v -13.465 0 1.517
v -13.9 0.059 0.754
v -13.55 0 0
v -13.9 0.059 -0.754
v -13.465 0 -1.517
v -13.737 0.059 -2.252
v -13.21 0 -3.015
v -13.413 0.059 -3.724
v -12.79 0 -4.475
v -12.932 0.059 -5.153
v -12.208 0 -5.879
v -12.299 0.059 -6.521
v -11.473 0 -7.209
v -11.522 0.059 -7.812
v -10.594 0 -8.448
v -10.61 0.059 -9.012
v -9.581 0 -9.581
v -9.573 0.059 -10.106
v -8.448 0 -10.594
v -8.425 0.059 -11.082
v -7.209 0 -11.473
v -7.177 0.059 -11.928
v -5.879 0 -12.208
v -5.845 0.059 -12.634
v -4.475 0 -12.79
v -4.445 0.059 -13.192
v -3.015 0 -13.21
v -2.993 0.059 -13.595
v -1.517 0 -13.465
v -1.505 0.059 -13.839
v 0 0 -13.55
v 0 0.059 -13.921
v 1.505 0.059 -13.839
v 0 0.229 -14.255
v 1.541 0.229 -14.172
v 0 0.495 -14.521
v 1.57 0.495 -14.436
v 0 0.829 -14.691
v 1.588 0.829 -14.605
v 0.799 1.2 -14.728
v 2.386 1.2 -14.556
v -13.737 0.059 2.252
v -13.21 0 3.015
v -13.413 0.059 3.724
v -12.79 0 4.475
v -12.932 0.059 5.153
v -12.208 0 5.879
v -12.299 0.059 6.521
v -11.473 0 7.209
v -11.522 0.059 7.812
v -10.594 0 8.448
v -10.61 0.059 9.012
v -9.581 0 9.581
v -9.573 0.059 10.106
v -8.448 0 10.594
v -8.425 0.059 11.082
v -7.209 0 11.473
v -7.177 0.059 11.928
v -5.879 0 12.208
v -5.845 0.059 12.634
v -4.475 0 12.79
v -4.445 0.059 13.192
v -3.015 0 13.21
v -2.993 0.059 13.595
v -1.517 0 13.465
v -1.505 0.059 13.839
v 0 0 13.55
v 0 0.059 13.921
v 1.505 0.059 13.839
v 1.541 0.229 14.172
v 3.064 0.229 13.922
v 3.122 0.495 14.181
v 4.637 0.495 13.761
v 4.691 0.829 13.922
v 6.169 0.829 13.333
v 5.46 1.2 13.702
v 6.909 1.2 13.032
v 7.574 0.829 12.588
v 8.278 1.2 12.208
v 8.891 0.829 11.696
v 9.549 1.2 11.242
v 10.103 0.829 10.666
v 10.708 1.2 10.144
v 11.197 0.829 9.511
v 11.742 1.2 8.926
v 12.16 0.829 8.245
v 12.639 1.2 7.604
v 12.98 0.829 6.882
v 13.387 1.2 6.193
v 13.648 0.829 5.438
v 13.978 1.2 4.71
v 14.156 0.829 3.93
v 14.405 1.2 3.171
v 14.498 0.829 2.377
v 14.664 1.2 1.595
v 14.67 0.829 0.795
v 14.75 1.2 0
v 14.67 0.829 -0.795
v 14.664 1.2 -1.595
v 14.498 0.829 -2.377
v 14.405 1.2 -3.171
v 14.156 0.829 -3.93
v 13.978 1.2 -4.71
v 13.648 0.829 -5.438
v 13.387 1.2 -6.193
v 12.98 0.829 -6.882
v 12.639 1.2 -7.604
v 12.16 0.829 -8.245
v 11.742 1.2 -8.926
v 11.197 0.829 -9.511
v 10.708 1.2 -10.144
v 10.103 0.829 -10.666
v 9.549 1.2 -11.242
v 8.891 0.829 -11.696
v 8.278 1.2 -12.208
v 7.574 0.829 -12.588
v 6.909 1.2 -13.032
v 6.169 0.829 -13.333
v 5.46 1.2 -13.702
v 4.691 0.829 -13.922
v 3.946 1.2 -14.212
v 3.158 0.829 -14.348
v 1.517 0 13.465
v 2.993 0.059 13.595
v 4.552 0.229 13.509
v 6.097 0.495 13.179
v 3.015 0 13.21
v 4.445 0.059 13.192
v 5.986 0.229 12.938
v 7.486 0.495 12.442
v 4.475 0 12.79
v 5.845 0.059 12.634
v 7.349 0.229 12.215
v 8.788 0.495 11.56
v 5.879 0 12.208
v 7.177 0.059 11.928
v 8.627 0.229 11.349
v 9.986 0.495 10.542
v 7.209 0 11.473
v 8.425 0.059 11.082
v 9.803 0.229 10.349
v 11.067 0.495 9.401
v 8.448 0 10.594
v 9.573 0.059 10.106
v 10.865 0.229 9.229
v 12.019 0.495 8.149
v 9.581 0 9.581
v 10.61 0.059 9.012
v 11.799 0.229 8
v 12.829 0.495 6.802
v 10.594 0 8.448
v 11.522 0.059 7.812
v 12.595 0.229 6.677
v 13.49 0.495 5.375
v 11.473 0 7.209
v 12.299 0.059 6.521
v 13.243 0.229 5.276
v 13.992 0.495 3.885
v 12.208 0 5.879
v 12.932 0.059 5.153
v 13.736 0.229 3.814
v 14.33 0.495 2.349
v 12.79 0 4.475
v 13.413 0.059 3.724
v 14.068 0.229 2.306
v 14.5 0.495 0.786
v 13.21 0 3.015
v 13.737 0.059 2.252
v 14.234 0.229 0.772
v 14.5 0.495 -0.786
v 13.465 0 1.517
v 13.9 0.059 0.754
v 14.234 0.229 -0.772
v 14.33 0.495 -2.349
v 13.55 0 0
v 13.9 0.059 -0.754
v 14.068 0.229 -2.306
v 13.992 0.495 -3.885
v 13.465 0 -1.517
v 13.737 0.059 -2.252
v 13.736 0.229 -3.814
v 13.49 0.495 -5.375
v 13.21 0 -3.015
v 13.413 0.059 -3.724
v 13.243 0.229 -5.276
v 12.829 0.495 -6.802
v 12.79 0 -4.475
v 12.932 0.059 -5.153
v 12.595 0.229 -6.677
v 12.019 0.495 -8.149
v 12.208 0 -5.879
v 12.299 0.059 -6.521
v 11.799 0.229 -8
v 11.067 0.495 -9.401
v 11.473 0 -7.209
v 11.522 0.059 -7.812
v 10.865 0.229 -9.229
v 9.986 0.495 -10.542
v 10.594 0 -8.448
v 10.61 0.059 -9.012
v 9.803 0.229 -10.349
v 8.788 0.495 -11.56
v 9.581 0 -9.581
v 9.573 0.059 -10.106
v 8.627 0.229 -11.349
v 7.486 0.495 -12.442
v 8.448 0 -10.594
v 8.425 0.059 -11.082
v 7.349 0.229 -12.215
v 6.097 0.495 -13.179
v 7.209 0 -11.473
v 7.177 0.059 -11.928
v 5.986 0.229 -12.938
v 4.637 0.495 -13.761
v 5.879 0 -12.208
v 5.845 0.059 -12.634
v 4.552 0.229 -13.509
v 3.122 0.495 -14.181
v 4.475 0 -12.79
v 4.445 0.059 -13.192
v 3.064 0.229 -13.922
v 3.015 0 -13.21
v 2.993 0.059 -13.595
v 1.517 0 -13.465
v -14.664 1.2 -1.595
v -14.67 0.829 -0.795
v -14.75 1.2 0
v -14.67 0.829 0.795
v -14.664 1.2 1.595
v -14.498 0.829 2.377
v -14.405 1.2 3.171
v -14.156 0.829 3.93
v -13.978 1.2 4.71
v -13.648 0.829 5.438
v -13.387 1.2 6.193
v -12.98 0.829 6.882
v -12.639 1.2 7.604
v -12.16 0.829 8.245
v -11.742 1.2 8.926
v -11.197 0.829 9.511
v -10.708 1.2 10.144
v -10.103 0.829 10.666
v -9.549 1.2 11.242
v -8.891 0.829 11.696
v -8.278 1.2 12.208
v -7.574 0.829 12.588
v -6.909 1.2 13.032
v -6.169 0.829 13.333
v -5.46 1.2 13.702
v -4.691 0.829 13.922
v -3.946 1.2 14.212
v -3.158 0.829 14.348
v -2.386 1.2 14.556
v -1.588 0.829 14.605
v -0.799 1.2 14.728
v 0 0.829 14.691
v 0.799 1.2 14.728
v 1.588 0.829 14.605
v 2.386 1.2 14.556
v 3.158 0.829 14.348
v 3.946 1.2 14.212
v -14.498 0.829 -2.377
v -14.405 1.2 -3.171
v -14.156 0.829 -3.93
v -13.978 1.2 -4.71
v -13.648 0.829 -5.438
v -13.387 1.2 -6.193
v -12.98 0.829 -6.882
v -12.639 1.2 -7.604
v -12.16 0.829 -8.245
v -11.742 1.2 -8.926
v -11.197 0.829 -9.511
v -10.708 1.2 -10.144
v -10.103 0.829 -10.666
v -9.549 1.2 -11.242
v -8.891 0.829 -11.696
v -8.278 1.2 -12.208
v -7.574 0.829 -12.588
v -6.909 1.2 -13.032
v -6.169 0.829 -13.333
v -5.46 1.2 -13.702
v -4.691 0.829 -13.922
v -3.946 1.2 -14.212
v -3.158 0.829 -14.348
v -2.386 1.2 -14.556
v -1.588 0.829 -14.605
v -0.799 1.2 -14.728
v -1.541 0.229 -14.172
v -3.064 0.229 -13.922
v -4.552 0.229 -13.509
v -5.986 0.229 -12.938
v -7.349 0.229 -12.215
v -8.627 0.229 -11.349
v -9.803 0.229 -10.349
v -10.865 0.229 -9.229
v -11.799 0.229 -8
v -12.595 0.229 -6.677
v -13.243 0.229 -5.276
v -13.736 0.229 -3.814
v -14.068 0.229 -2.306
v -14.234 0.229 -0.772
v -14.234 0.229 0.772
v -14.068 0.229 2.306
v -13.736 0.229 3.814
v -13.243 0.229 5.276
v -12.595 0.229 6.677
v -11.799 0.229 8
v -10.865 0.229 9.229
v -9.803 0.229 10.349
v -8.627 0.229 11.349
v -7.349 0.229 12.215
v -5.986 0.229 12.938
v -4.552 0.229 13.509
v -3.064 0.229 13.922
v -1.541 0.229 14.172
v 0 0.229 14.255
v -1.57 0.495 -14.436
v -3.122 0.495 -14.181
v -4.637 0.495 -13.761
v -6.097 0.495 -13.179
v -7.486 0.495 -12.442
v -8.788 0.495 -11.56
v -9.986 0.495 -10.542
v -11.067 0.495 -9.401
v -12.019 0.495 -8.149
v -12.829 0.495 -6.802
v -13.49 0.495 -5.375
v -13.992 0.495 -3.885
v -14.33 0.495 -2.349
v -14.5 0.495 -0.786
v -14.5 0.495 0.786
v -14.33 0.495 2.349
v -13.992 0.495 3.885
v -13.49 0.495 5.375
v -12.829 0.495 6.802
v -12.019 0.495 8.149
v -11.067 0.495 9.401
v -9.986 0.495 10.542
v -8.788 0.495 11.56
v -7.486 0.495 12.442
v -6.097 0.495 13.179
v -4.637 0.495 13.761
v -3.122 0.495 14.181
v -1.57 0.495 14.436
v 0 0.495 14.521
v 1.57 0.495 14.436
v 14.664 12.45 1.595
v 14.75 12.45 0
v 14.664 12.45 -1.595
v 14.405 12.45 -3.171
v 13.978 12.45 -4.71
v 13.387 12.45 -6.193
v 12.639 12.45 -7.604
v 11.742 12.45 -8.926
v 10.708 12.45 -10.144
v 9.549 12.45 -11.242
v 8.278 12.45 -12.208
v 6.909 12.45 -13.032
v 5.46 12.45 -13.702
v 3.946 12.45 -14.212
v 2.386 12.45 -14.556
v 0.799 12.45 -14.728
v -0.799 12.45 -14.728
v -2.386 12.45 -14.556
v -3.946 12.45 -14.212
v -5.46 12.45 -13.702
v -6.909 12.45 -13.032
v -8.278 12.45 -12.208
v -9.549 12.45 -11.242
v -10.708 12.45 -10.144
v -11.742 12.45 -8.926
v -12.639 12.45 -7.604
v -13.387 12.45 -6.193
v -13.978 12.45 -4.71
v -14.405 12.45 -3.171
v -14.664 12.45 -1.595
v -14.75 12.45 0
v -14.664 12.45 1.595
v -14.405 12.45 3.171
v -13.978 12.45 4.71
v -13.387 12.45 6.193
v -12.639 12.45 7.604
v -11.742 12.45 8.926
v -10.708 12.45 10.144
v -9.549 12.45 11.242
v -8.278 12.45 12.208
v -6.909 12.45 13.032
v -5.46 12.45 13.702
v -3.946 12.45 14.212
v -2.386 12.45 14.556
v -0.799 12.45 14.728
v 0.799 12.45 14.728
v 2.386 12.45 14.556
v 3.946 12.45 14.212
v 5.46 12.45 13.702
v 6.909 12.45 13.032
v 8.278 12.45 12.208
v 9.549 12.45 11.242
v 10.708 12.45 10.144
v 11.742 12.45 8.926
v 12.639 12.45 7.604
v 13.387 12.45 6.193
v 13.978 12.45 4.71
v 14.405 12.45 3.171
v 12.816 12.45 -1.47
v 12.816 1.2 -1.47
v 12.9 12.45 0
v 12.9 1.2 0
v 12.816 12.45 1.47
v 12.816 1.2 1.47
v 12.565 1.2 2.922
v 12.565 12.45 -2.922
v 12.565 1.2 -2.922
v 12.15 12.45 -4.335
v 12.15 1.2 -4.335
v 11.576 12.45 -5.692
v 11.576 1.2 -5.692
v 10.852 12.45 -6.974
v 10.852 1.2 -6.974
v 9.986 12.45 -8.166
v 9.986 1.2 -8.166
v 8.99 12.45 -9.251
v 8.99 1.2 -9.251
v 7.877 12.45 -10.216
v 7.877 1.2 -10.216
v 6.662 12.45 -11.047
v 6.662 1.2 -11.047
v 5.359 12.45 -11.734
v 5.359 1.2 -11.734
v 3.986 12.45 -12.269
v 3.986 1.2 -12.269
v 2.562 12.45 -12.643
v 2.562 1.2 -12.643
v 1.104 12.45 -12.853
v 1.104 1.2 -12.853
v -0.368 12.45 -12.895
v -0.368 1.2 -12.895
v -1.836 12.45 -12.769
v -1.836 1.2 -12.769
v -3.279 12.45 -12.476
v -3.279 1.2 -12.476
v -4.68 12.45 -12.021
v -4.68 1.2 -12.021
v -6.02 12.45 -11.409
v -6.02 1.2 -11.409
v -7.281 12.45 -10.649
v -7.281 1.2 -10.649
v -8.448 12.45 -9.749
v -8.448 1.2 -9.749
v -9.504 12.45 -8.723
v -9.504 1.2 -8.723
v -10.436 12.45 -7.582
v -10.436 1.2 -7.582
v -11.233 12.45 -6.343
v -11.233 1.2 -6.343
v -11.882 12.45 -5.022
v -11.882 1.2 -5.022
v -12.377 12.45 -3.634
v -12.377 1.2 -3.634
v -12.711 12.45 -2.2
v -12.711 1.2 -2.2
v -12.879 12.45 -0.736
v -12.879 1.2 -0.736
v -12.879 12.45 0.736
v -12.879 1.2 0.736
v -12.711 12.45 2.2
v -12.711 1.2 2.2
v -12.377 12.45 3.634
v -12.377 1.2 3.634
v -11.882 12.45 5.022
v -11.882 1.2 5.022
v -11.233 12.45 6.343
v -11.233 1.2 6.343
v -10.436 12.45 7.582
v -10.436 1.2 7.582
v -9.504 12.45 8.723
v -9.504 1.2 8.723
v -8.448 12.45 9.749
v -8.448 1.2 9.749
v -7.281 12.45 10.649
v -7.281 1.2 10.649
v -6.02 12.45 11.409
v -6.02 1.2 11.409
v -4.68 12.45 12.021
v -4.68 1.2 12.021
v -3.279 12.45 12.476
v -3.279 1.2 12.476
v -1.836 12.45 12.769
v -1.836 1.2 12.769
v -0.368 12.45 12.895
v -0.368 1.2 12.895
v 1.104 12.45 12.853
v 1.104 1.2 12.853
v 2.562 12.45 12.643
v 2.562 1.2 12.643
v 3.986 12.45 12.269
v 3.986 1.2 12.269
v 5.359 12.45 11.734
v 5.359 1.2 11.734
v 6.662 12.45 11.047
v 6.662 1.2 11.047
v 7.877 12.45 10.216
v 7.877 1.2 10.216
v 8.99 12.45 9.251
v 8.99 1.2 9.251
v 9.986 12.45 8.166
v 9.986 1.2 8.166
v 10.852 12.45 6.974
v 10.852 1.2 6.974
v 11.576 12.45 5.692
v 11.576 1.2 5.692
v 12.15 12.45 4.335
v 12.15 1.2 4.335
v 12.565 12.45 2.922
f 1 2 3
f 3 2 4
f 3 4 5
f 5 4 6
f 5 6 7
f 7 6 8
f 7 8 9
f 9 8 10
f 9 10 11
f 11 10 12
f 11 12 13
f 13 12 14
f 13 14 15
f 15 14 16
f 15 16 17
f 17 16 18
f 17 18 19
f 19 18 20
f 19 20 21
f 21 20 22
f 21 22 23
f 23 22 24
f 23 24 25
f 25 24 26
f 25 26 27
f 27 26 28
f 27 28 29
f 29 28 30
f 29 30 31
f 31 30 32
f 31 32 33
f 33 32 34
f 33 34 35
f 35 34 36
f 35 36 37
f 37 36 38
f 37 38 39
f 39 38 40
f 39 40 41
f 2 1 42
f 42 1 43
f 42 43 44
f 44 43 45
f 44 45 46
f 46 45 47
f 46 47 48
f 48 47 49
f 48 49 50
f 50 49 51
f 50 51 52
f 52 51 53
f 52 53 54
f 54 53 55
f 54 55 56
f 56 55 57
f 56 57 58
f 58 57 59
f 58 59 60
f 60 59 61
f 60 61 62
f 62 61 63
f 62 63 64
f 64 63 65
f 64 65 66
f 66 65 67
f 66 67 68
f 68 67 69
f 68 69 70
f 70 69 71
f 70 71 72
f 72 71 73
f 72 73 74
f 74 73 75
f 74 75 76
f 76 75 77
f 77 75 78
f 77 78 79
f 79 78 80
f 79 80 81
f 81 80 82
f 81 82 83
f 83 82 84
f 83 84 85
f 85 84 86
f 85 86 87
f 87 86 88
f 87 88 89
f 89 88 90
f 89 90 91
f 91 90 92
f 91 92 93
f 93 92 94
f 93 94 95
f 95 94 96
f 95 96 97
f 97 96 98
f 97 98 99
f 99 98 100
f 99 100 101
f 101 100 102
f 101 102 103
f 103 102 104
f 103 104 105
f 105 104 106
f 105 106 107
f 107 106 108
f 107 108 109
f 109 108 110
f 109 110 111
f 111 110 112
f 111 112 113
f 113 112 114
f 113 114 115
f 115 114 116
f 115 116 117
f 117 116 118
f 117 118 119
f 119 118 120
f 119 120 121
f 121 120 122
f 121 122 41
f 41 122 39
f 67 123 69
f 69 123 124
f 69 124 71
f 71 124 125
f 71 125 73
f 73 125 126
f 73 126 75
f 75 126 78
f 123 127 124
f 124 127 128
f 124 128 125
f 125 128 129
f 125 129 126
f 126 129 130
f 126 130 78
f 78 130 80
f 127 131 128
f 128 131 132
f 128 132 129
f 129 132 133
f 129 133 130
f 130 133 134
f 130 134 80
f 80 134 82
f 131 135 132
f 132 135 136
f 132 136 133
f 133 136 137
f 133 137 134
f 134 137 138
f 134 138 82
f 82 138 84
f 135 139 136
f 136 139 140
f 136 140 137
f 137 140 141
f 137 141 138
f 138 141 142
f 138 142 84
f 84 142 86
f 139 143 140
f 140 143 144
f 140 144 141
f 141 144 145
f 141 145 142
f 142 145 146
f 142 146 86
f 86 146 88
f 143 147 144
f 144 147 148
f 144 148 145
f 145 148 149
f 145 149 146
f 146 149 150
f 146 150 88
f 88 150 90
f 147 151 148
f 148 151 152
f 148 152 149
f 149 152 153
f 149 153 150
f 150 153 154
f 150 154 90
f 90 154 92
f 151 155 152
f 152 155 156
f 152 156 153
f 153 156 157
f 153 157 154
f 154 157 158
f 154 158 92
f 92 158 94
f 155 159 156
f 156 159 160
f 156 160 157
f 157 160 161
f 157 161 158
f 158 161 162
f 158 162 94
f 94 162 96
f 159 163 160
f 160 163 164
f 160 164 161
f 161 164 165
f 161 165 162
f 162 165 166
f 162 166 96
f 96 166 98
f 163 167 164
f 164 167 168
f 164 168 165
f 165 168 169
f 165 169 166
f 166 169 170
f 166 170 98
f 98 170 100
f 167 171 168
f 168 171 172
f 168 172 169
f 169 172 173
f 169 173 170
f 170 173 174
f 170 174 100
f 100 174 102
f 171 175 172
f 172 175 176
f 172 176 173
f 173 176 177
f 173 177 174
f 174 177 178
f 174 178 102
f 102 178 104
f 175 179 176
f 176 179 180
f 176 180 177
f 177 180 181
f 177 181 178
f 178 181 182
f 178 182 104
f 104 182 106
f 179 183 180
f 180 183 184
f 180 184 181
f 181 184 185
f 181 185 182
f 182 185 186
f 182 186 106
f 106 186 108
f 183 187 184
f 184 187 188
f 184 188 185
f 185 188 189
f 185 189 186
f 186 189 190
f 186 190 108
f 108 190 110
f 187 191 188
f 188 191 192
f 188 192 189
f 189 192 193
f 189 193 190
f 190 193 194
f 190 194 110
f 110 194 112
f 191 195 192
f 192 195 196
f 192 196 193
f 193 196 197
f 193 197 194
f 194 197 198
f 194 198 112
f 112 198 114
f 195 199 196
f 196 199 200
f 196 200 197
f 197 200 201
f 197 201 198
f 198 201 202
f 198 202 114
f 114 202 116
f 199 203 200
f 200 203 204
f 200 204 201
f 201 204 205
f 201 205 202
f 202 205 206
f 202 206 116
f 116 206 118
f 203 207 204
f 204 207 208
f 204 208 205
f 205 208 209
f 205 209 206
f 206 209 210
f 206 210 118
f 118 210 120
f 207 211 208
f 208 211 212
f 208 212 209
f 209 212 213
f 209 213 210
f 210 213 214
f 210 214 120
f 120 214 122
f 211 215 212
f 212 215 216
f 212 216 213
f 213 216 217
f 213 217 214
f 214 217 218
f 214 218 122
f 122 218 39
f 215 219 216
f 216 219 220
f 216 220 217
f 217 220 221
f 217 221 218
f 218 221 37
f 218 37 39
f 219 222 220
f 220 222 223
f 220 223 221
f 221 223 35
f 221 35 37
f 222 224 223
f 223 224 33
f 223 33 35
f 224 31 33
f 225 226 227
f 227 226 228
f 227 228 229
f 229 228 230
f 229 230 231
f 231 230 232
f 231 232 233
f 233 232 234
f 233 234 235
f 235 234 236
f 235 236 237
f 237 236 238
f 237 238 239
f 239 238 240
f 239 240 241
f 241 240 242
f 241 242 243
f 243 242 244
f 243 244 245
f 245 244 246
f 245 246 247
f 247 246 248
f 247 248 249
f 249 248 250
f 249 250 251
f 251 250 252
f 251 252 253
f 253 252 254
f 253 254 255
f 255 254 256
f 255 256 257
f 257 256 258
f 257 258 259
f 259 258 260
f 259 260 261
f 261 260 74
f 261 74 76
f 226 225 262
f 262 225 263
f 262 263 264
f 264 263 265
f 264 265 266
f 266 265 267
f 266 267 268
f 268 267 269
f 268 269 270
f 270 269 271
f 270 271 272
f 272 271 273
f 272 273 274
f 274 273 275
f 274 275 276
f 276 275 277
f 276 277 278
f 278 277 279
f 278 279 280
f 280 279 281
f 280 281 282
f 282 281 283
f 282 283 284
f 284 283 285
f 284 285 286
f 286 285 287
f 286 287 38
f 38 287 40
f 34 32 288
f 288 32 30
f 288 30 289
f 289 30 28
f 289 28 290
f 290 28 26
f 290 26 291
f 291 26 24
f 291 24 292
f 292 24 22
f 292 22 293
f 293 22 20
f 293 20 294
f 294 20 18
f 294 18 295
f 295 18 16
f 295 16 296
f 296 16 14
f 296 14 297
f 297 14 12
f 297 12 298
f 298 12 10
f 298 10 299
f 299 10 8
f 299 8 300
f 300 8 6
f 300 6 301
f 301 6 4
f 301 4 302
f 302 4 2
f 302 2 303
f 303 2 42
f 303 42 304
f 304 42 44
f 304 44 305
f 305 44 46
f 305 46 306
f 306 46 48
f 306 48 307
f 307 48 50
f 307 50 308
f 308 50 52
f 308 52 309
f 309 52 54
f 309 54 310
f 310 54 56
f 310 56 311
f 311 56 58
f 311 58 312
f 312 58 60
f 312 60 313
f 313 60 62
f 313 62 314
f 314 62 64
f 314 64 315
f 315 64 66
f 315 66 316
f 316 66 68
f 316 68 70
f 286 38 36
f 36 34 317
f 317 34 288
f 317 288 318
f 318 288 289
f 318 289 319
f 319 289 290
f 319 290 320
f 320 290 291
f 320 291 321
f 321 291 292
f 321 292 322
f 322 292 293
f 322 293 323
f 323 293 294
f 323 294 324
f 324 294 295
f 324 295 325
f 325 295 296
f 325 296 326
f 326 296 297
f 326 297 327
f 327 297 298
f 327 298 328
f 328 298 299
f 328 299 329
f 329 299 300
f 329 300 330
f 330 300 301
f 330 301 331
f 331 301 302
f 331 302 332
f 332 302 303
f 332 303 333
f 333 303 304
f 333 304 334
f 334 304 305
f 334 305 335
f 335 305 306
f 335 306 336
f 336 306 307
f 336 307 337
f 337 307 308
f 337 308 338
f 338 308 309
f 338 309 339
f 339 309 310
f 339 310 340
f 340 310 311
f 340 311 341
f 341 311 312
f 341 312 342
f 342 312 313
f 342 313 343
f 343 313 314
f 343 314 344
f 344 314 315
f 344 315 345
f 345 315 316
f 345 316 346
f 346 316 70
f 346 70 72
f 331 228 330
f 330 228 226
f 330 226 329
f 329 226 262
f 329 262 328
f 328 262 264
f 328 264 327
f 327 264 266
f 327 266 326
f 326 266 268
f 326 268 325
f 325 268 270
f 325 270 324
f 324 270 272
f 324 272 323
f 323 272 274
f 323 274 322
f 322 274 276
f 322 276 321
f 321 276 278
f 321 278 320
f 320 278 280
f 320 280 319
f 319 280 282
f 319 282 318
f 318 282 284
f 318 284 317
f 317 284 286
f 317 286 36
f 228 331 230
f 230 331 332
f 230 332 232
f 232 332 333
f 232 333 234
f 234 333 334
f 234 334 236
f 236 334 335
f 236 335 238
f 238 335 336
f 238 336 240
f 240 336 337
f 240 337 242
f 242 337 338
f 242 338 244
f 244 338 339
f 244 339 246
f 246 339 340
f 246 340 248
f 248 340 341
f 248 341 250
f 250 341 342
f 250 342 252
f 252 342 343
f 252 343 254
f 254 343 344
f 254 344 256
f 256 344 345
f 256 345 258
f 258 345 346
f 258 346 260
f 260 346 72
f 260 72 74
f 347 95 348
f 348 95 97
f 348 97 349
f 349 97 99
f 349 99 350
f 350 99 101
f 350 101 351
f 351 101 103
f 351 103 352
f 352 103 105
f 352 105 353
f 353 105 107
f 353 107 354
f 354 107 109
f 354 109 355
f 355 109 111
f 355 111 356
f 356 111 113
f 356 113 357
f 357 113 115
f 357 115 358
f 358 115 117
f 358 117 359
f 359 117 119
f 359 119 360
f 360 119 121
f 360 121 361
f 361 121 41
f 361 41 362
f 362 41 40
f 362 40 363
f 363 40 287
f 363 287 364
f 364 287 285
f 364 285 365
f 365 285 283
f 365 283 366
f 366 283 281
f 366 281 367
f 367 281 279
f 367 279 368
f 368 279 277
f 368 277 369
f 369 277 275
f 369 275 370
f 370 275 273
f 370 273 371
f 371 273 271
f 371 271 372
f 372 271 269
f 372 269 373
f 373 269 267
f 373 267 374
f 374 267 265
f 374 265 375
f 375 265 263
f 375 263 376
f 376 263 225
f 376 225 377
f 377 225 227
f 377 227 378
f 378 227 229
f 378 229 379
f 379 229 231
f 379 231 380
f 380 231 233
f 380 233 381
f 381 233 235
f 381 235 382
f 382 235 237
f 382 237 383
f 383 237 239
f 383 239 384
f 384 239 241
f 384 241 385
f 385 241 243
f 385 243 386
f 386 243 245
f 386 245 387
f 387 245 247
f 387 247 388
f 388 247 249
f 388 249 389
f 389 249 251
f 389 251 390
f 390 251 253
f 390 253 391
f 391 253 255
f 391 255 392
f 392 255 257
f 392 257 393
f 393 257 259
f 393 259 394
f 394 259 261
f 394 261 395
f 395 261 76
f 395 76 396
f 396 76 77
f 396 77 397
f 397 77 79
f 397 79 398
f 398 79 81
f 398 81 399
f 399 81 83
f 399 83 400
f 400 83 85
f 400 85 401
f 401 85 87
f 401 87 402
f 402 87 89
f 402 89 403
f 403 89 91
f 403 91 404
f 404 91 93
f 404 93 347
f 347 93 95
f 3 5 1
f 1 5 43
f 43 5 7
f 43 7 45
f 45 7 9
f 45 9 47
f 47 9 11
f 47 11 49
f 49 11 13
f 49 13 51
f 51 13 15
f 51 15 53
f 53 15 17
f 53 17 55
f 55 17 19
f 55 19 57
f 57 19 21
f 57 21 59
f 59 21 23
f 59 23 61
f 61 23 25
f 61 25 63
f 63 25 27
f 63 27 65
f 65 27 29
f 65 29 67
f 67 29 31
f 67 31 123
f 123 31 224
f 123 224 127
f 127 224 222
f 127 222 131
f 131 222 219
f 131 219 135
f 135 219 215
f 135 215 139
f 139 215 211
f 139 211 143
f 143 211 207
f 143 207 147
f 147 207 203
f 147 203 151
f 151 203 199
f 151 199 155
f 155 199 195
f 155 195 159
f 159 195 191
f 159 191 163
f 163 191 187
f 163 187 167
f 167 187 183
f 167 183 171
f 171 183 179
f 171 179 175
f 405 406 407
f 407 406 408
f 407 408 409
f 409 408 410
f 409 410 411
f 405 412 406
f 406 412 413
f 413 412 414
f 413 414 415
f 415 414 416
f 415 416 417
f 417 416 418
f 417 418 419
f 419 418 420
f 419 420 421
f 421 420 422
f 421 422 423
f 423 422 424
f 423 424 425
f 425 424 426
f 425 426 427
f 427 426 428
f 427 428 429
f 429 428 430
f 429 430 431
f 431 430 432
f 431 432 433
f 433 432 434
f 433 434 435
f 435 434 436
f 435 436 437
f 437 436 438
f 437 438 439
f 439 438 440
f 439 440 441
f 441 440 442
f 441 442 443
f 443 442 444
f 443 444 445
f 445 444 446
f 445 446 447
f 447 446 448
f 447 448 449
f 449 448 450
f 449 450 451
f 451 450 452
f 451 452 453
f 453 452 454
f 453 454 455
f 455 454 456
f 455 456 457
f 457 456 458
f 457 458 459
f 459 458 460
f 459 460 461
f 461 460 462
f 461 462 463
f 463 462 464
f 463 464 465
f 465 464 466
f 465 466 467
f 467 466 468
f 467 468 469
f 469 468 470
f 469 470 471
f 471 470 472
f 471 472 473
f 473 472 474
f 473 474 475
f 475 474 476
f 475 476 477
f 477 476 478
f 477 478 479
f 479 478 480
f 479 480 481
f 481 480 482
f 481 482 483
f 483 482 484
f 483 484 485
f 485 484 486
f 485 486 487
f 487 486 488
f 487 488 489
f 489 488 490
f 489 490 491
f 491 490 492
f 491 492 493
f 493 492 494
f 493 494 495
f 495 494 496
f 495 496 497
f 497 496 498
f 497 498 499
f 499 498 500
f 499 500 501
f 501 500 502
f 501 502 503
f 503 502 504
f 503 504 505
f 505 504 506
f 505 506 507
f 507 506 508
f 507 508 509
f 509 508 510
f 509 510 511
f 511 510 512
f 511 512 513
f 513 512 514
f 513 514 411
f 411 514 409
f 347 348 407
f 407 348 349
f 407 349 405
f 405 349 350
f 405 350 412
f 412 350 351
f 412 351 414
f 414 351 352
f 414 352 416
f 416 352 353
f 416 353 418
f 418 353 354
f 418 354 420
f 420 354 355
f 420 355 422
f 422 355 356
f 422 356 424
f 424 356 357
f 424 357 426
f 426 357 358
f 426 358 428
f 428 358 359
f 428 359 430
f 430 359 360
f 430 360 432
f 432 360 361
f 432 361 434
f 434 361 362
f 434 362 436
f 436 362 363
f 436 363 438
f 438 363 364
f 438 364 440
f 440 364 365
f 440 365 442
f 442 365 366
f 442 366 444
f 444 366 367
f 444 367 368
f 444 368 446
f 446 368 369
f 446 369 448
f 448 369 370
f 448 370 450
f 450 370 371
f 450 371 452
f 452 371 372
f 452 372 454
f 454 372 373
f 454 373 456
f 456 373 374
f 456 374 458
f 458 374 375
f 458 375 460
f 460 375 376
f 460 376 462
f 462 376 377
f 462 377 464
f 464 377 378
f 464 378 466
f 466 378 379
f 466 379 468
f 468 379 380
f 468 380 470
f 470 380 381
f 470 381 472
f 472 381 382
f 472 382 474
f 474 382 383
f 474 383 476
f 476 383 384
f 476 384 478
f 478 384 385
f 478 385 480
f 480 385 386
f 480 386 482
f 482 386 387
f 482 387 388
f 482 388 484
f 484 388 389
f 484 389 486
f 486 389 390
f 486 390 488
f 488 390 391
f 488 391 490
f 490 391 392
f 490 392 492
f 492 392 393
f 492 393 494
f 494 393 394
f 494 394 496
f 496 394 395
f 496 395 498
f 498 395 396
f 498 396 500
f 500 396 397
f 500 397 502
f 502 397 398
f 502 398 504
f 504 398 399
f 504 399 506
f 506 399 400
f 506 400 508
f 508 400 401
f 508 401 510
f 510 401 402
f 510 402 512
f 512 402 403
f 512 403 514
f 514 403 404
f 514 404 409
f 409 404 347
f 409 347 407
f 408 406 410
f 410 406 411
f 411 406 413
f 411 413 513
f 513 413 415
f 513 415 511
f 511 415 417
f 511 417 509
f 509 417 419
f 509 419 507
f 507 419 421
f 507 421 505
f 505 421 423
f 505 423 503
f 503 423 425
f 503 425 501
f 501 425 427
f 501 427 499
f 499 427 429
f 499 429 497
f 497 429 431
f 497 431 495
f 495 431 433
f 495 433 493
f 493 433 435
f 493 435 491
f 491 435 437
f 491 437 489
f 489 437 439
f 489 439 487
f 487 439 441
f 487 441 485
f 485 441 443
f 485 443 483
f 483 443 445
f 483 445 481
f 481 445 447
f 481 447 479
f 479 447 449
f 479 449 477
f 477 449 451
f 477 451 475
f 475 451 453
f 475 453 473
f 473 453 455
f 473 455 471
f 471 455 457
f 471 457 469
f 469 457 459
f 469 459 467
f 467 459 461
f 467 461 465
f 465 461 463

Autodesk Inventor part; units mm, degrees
ref_plane "YZ Plane" through (0, 0, 0) normal (1, 0, 0) x (0, 1, 0)
ref_plane "XZ Plane" through (0, 0, 0) normal (0, 1, 0) x (-1, 0, 0)
ref_plane "XY Plane" through (0, 0, 0) normal (0, 0, 1) x (1, 0, 0)
sketch "Sketch1" plane through (0, 0, 0) normal (0, 1, 0) x (-1, 0, 0)
  circle A0 centre (0, 0) radius 14.75
  line L0 (0, -14.75) -> (0, -12.9)
  circle A1 centre (0, 0) radius 12.9
  dimension "d0" = 29.5
  dimension "d1" = 1.85
extrude "Extrusion1" add sketch "Sketch1" along normal blind 1.2 contours A1 | A0
sketch "Sketch2" plane through (0, 1.2, 0) normal (0, 1, 0) x (1, 0, 0)
  circle A0 centre (0, 0) radius 14.75 projected
  line L0 (0, 14.75) -> (0, 12.9)
  circle A1 centre (0, 0) radius 12.9
  dimension "d4" = 1.85
extrude "Extrusion2" add sketch "Sketch2" along normal blind 11.25
fillet "Fillet1" radius 1.2 1 edges at (14.75, 0, 0)
properties part number "Bottle"
